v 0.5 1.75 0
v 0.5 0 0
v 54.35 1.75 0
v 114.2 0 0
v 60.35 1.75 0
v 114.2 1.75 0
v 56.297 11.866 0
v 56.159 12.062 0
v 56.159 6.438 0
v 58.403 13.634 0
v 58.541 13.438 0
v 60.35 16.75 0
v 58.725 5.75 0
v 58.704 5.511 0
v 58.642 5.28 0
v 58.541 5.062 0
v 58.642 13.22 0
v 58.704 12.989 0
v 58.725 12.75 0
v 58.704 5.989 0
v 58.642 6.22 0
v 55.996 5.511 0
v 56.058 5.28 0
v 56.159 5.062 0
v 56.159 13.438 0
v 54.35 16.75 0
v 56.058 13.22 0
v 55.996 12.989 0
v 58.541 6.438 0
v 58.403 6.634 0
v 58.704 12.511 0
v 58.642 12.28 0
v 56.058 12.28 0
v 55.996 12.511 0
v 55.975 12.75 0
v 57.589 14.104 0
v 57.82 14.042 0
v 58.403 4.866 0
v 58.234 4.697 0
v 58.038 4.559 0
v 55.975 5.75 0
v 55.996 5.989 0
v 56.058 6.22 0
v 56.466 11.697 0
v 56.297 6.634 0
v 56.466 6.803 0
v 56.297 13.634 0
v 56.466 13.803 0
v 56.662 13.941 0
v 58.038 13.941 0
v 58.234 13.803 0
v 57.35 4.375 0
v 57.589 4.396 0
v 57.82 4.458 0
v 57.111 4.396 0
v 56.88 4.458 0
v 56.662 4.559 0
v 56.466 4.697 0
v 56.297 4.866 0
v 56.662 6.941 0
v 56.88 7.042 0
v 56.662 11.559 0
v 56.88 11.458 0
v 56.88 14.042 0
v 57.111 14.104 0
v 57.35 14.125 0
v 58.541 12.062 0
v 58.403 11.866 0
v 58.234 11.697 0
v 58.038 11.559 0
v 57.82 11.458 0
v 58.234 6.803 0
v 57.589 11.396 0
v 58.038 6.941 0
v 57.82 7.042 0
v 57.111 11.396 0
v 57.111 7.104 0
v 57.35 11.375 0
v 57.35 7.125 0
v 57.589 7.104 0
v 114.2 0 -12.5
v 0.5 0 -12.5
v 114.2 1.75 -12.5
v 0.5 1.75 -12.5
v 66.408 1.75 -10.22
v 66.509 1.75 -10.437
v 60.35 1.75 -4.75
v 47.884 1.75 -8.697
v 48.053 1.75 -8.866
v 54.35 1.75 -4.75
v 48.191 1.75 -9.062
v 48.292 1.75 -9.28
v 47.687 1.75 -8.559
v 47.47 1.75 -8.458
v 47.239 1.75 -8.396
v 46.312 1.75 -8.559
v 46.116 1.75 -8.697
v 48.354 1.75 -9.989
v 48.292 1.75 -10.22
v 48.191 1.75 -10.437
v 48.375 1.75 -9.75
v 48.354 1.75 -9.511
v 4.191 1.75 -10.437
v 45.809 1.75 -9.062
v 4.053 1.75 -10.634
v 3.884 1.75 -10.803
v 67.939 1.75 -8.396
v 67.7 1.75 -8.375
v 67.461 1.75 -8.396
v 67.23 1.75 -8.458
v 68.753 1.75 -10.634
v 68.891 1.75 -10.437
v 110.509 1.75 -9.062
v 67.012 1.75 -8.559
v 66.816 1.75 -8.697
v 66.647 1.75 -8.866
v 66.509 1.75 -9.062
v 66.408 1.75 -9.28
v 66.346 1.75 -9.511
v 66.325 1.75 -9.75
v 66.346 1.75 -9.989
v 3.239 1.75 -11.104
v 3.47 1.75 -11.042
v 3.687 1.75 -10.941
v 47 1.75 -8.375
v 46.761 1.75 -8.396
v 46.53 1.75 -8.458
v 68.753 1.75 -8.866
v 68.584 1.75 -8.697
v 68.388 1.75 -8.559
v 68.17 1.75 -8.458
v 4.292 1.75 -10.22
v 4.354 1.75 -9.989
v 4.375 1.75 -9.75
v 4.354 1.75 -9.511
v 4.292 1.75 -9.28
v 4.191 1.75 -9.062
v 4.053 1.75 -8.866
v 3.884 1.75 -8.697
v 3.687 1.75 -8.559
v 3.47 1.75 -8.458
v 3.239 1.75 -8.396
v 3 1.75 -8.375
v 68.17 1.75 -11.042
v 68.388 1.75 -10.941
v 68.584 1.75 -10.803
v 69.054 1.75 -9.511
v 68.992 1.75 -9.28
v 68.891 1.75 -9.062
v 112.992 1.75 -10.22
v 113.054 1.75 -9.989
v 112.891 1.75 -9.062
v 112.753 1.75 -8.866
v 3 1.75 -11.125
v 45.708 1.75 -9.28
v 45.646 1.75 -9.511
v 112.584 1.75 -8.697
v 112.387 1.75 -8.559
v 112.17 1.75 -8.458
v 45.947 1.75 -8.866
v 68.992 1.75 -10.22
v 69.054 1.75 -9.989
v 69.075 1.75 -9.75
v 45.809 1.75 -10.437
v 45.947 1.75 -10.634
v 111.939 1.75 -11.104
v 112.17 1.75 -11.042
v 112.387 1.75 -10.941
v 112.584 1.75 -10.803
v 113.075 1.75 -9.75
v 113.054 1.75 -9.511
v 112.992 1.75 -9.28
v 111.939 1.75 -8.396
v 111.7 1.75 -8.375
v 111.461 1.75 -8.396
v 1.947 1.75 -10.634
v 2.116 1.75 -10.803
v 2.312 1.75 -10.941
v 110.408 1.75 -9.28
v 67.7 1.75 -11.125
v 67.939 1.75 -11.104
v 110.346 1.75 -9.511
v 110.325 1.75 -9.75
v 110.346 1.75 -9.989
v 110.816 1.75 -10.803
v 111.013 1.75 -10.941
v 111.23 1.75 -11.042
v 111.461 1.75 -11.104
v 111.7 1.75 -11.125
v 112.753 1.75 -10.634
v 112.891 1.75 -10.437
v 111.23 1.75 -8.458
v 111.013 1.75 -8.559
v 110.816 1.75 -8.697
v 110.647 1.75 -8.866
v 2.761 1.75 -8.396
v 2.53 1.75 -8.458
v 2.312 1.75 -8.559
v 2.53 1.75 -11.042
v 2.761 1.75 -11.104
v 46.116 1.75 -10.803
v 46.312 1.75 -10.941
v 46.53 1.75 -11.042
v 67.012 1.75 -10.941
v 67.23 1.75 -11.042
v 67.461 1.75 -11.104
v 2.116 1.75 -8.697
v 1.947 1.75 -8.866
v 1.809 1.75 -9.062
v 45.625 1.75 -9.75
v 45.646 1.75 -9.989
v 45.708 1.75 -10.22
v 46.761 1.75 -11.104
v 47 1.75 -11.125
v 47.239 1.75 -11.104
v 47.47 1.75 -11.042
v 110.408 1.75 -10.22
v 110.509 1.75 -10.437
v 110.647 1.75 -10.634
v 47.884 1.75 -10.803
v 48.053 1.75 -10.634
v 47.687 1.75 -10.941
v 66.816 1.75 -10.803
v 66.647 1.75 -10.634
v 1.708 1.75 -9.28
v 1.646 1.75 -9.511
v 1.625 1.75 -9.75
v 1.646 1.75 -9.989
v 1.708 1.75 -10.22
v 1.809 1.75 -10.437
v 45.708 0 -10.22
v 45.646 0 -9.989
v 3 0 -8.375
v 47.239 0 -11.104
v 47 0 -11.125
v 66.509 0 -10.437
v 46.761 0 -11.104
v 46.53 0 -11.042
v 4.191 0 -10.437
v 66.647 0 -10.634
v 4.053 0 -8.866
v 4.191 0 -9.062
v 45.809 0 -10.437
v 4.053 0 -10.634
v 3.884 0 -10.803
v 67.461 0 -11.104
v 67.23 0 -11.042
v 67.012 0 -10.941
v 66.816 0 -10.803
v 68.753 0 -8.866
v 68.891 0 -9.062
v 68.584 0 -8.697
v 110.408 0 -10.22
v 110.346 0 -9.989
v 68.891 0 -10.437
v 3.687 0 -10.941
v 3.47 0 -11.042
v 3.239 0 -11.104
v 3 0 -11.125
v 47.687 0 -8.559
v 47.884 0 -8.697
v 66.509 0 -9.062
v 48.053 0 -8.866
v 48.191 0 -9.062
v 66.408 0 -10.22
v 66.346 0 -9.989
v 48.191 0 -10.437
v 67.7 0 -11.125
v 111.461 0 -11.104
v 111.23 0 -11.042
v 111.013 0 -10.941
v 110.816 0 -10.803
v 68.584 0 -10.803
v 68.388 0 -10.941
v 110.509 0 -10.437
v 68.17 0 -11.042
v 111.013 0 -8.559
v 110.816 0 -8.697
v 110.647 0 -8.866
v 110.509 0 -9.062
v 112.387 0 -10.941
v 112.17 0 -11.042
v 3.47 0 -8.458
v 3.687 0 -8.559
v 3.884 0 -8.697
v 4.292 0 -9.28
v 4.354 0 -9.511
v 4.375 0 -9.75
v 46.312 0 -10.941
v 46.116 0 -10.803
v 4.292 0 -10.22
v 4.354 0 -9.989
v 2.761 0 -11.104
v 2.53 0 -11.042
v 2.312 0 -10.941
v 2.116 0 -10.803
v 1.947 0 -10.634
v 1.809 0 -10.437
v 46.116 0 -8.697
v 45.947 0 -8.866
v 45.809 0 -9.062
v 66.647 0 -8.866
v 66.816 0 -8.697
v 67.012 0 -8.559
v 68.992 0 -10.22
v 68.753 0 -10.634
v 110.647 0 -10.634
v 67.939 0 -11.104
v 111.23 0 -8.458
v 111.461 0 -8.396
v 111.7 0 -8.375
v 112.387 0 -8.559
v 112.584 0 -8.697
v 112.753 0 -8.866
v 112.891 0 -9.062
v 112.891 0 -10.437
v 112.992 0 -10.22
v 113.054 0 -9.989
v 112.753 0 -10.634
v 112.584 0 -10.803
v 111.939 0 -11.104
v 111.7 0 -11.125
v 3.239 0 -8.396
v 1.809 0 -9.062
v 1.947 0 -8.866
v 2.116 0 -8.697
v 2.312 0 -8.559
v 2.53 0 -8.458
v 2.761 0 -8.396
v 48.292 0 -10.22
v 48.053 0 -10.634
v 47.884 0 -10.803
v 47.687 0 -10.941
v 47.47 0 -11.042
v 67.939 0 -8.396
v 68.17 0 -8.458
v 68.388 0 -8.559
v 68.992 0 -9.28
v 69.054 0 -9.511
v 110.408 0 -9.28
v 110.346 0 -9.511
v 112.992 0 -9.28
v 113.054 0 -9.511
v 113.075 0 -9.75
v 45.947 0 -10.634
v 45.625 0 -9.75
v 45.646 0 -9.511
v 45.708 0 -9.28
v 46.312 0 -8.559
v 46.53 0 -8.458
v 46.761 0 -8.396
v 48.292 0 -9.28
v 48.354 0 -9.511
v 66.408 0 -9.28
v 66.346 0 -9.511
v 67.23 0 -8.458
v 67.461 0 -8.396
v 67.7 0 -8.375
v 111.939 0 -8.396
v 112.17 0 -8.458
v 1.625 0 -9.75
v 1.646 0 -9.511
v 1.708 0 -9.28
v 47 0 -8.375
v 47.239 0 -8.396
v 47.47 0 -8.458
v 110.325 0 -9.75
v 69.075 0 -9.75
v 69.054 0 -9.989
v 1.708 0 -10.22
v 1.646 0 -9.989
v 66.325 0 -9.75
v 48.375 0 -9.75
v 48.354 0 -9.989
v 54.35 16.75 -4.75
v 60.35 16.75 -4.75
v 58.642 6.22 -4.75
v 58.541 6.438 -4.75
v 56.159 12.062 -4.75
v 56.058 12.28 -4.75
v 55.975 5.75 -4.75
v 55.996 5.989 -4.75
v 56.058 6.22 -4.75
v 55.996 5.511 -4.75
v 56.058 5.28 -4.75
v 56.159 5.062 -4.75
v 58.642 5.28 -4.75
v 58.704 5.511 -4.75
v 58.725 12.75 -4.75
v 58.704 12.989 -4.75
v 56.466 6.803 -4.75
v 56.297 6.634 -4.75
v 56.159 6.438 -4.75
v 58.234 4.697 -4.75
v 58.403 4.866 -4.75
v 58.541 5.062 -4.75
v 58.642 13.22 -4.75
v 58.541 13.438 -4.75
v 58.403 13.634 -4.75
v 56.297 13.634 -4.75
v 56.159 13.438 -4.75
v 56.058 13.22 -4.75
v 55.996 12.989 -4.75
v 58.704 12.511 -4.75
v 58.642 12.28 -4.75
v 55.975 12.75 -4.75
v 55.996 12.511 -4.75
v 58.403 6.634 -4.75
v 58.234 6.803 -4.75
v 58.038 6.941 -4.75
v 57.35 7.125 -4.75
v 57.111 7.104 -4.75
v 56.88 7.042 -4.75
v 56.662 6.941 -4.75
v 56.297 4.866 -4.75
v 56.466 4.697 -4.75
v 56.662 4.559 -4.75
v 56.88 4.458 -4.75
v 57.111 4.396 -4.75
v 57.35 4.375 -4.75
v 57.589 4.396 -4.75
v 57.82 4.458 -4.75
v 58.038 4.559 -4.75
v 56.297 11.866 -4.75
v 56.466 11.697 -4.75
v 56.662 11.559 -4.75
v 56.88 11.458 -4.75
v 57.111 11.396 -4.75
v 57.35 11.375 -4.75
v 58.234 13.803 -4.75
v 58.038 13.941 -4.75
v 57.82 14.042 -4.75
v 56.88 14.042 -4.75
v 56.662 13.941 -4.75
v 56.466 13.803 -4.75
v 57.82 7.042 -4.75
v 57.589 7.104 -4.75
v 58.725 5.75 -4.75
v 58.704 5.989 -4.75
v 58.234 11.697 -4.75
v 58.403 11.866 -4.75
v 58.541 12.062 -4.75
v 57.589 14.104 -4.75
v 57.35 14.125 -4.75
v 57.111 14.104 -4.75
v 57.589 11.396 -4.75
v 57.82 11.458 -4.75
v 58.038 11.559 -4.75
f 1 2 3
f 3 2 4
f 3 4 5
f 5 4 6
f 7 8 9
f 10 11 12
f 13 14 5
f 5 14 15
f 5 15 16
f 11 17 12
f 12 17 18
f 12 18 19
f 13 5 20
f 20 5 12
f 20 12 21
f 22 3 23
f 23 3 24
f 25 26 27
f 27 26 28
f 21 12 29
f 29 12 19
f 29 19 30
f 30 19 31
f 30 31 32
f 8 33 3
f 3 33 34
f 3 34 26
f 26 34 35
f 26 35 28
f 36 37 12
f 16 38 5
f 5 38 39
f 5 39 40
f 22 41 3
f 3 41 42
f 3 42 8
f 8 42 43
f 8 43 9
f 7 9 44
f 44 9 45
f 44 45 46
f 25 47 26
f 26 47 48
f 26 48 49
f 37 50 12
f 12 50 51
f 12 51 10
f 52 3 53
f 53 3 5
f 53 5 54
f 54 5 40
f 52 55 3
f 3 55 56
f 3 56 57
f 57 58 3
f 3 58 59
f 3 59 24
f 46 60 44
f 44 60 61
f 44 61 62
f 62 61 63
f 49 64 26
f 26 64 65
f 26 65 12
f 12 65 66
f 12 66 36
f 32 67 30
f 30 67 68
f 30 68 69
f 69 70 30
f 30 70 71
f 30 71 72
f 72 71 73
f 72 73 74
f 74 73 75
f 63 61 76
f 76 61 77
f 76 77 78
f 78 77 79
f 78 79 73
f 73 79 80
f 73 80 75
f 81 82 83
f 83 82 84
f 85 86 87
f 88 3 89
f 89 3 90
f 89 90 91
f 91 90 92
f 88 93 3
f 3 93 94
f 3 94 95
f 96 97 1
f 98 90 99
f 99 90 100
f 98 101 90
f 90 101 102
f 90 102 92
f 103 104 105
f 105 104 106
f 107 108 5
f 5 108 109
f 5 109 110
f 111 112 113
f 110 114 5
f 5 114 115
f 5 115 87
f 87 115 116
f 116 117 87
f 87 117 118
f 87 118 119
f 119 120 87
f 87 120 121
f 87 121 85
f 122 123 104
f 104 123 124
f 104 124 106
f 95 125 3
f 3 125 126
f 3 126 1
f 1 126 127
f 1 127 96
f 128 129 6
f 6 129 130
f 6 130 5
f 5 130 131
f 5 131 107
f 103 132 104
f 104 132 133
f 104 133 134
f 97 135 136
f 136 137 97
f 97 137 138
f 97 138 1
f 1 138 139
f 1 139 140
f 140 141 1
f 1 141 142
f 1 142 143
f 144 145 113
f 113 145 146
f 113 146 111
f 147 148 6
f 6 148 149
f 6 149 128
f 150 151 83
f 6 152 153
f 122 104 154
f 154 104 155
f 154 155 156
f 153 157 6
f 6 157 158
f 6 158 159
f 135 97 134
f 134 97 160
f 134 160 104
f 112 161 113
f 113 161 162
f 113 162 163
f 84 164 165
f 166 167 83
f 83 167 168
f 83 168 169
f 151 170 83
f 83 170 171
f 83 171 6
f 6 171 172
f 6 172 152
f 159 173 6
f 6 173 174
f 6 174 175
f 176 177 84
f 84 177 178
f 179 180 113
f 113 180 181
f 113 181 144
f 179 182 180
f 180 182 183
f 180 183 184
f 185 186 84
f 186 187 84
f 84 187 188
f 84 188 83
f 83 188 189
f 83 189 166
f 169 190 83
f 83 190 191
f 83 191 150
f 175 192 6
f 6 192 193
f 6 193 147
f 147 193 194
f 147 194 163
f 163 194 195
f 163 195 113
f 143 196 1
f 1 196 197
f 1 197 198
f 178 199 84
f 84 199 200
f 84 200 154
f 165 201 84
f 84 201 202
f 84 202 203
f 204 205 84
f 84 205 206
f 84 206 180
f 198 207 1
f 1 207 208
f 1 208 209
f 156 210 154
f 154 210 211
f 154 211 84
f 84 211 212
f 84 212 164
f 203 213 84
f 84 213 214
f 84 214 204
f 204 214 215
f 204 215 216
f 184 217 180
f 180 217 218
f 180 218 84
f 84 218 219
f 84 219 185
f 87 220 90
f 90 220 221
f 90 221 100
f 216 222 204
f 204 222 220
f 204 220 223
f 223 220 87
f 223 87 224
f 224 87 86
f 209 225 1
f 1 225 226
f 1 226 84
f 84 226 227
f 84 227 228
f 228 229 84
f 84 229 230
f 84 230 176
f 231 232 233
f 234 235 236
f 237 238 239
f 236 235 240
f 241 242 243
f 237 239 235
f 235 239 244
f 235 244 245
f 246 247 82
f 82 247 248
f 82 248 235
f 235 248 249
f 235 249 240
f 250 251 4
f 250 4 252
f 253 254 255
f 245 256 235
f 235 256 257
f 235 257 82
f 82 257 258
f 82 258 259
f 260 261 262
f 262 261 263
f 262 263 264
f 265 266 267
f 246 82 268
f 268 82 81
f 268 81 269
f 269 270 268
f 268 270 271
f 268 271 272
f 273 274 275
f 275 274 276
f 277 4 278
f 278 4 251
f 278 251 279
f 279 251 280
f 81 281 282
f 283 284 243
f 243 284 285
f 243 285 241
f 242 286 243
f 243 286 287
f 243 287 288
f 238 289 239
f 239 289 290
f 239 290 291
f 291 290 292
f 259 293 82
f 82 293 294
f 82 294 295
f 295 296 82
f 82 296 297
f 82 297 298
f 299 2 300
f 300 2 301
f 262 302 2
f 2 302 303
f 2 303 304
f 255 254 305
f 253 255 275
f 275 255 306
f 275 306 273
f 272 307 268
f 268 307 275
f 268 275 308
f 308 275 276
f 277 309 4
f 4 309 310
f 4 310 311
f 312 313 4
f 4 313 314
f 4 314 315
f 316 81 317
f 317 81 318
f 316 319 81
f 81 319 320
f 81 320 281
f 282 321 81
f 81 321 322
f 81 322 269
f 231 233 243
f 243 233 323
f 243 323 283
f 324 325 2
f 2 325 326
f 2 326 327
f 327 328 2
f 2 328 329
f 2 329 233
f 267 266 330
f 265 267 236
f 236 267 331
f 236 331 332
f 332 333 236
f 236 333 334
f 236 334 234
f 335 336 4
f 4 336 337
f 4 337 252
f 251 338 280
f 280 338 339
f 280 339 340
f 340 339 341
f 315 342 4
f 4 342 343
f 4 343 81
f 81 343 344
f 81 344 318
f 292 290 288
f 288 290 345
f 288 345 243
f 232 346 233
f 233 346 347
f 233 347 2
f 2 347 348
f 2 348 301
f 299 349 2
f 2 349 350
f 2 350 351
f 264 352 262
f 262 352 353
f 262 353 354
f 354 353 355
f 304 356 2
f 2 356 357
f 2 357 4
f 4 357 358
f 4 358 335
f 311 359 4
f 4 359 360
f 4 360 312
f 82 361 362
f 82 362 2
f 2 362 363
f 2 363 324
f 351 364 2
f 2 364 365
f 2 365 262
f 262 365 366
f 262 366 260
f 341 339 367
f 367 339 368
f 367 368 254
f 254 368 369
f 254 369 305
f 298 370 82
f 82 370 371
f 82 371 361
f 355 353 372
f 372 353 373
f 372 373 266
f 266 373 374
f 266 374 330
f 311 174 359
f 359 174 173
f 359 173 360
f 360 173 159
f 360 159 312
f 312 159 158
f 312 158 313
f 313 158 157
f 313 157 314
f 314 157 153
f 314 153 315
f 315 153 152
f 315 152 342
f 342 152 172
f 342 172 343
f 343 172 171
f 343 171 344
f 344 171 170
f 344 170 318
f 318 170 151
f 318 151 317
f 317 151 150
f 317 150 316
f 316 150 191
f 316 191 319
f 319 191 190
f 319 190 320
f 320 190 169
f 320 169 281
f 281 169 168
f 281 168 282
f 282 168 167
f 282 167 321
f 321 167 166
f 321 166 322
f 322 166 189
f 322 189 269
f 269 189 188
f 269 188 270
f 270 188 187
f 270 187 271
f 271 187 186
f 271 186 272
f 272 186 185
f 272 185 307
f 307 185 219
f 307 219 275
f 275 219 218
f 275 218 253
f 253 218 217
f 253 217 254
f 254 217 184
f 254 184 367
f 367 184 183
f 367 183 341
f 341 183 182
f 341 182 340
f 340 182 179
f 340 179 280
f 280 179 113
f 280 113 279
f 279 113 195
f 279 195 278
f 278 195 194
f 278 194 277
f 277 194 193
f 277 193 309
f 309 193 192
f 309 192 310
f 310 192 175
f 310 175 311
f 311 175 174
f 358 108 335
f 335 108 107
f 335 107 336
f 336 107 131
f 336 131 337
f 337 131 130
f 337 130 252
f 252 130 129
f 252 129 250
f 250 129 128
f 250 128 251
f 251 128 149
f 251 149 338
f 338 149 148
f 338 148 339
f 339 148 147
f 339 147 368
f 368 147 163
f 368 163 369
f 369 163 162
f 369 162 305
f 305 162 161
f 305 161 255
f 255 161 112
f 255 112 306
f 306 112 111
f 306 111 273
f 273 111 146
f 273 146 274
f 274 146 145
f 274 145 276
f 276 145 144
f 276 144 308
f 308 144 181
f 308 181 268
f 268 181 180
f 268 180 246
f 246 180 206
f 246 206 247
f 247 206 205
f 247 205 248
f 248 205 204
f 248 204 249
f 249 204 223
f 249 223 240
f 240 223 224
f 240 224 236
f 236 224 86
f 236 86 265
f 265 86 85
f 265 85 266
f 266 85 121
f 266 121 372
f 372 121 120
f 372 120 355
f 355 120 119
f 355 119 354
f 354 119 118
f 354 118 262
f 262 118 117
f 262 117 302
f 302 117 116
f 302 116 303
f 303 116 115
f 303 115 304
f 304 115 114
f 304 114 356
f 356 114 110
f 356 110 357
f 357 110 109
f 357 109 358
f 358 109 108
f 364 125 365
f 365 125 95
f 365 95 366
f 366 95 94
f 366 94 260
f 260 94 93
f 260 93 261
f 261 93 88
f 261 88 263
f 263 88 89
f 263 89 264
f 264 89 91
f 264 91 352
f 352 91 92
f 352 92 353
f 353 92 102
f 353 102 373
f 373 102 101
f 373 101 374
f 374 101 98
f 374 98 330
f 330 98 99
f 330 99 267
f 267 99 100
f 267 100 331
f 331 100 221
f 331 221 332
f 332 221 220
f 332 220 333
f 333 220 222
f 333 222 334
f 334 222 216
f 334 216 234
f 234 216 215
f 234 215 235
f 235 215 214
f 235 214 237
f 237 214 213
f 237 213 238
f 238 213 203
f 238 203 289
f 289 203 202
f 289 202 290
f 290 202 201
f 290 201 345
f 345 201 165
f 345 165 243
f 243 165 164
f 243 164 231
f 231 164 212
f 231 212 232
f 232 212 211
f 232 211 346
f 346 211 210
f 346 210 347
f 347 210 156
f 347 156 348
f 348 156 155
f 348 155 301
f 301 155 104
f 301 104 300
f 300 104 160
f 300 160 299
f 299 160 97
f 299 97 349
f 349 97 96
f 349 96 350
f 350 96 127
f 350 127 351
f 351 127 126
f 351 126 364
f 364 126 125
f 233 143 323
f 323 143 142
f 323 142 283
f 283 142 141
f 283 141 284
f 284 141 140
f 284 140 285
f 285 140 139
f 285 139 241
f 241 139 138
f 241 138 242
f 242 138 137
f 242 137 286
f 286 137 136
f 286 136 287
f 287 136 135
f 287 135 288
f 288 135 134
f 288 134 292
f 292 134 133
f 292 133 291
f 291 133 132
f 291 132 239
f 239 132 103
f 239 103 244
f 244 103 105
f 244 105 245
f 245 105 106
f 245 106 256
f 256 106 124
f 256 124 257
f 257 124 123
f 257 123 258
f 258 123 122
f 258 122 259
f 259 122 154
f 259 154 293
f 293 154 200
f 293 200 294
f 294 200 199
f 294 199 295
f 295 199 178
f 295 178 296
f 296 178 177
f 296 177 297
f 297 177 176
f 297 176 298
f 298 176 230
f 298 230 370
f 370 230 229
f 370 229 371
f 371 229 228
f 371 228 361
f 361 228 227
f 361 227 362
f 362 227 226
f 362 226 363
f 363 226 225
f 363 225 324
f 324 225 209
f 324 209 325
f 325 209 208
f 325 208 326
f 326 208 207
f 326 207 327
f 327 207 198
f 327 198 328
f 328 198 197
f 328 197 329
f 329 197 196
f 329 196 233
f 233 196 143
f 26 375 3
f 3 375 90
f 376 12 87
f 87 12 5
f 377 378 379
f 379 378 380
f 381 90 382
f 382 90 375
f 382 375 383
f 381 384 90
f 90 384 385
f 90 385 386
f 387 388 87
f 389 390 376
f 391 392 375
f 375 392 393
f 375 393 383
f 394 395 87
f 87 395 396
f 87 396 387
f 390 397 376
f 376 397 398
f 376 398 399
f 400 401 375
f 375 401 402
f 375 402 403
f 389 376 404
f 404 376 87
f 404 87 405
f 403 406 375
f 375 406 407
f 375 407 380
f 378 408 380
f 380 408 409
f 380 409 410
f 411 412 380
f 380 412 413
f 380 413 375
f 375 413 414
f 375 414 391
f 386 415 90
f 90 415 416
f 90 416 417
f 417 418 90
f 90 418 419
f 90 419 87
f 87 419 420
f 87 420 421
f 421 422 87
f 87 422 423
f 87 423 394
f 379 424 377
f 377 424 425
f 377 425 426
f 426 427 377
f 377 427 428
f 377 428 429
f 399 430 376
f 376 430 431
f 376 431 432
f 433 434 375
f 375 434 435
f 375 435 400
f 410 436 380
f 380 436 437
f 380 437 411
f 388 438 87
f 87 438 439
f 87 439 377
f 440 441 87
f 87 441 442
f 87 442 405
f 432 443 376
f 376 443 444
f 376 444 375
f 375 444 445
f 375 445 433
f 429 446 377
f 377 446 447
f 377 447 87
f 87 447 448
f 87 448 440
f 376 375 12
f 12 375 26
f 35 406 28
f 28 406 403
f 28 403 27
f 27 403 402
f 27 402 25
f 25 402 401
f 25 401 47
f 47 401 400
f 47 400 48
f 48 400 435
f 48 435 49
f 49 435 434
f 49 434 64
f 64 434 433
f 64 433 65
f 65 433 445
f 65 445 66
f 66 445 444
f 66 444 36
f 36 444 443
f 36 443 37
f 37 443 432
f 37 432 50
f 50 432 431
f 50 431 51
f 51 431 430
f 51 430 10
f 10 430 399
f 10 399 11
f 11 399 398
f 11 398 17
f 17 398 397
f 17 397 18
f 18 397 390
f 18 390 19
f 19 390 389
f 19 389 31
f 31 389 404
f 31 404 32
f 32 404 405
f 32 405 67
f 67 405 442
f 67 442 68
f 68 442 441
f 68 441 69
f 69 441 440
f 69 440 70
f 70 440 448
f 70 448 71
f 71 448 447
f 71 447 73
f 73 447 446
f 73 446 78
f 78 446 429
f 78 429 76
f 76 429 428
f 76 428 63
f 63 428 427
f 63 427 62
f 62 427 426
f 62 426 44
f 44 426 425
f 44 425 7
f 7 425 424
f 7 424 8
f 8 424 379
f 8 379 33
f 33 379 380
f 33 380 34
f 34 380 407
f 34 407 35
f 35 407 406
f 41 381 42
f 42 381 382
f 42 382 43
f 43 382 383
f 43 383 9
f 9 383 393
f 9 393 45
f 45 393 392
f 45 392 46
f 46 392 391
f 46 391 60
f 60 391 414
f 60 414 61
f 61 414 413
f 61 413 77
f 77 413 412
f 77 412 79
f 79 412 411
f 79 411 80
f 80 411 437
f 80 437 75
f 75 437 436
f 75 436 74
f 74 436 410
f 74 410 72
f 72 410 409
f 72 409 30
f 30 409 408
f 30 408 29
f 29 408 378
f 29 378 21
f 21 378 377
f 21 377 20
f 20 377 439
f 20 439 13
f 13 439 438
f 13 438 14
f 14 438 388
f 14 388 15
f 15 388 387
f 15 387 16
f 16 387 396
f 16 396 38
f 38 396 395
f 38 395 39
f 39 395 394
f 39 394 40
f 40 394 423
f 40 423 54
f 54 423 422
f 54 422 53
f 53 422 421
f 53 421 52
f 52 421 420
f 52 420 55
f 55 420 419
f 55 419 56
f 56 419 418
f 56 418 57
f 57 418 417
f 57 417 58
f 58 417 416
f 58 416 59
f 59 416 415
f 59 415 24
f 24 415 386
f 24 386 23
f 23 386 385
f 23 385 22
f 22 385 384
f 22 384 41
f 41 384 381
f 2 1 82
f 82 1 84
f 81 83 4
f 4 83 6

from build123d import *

# Parameters (mm, degrees)
SKETCH2_W                        = 114.7
SKETCH2_H                        = 12.5
BRACKETBASE_DEPTH                = 1.75
SKETCH3_R                        = 1.375
BOTTOMCHASSISMOUNTINGHOLES_DEPTH = 1.75
SKETCH4_W                        = 6
SKETCH4_H                        = 16.75
MOUNTINGTABS_DEPTH               = 4.75
SKETCH5_W                        = 6
SKETCH5_H                        = 1.75
EXTENSION_DEPTH                  = 7.75
SKETCH6_R                        = 1.375
REARSHELLMOUNTINGHOLES_DEPTH     = 4.75
SKETCH8_R                        = 3.25
CUT_EXTRUDE2_DEPTH               = 10
SKETCH9_R                        = 3.25
CUT_EXTRUDE3_DEPTH               = 10
SKETCH10_W                       = 6.5
SKETCH10_H                       = 12.5
CUT_EXTRUDE4_DEPTH               = 16
CUT_EXTRUDE4_DEPTH_BACK          = 2.75


with BuildPart() as part:
    # Sketch2 → bracketBase (new body)
    with BuildSketch(Plane(origin=(0, 0, 0), x_dir=(1, 0, 0), z_dir=(0, 1, 0))):
        with Locations((57.35, 6.25)):
            Rectangle(SKETCH2_W, SKETCH2_H)
    extrude(amount=BRACKETBASE_DEPTH)

    # Sketch3 → bottomChassisMountingHoles (cut)
    with BuildSketch(Plane(origin=(0, 1.75, 0), x_dir=(1, 0, 0), z_dir=(0, 1, 0))):
        with Locations((3, 9.75)):
            Circle(SKETCH3_R)
        with Locations((47, 9.75)):
            Circle(SKETCH3_R)
        with Locations((67.7, 9.75)):
            Circle(SKETCH3_R)
        with Locations((111.7, 9.75)):
            Circle(SKETCH3_R)
    extrude(amount=-BOTTOMCHASSISMOUNTINGHOLES_DEPTH, mode=Mode.SUBTRACT)

    # Sketch4 → mountingTabs (add)
    with BuildSketch(Plane.XY):
        with Locations((117.7, 8.375)):
            Rectangle(SKETCH4_W, SKETCH4_H)
        with Locations((-3, 8.375)):
            Rectangle(SKETCH4_W, SKETCH4_H)
        with Locations((57.35, 8.375)):
            Rectangle(SKETCH4_W, SKETCH4_H)
    extrude(amount=-MOUNTINGTABS_DEPTH)

    # Sketch5 → extension (add)
    with BuildSketch(Plane(origin=(0, 0, -12.5), x_dir=(-1, 0, 0), z_dir=(0, 0, -1))):
        with Locations((-117.7, 0.875)):
            Rectangle(SKETCH5_W, SKETCH5_H)
        with Locations((3, 0.875)):
            Rectangle(SKETCH5_W, SKETCH5_H)
    extrude(amount=-EXTENSION_DEPTH)

    # Sketch6 → rearShellMountingHoles (cut)
    with BuildSketch(Plane(origin=(0, 0, -4.75), x_dir=(-1, 0, 0), z_dir=(0, 0, -1))):
        with Locations((-57.35, 12.75)):
            Circle(SKETCH6_R)
        with Locations((-57.35, 5.75)):
            Circle(SKETCH6_R)
        with Locations((-117.7, 12.75)):
            Circle(SKETCH6_R)
        with Locations((-117.7, 5.75)):
            Circle(SKETCH6_R)
        with Locations((3, 5.75)):
            Circle(SKETCH6_R)
        with Locations((3, 12.75)):
            Circle(SKETCH6_R)
    extrude(amount=-REARSHELLMOUNTINGHOLES_DEPTH, mode=Mode.SUBTRACT)

    # Sketch8 → Cut-Extrude2 (cut)
    with BuildSketch(Plane(origin=(0, 1.75, 0), x_dir=(1, 0, 0), z_dir=(0, 1, 0))):
        with Locations((120.95, 8.5675)):
            Circle(SKETCH8_R)
        with Locations((-6.25, 8.5675)):
            Circle(SKETCH8_R)
    extrude(amount=-CUT_EXTRUDE2_DEPTH, mode=Mode.SUBTRACT)

    # Sketch9 → Cut-Extrude3 (cut)
    with BuildSketch(Plane.XZ.offset(-1.75)):
        with Locations((-6.25, -8.5675)):
            Circle(SKETCH9_R)
        with BuildLine():
            Line((120.7, -5.327129651), (122.422971605, -5.194199506))
            Line((122.422971605, -5.194199506), (122.933227388, -11.807870349))
            Line((122.933227388, -11.807870349), (120.7, -11.807870349))
            ThreePointArc((120.7, -11.807870349), (117.7, -8.5675), (120.7, -5.327129651))
        make_face()
    extrude(amount=-CUT_EXTRUDE3_DEPTH, mode=Mode.SUBTRACT)

    # Sketch10 → Cut-Extrude4 (cut, two sides)
    with BuildSketch(Plane(origin=(0, 1.75, 0), x_dir=(1, 0, 0), z_dir=(0, 1, 0))) as cut_extrude4_sk:
        with Locations((117.45, 6.25)):
            Rectangle(SKETCH10_W, SKETCH10_H)
        with Locations((-2.75, 6.25)):
            Rectangle(SKETCH10_W, SKETCH10_H)
    extrude(amount=CUT_EXTRUDE4_DEPTH, mode=Mode.SUBTRACT)
    extrude(cut_extrude4_sk.sketch, amount=-CUT_EXTRUDE4_DEPTH_BACK, mode=Mode.SUBTRACT)


solid = part.part
